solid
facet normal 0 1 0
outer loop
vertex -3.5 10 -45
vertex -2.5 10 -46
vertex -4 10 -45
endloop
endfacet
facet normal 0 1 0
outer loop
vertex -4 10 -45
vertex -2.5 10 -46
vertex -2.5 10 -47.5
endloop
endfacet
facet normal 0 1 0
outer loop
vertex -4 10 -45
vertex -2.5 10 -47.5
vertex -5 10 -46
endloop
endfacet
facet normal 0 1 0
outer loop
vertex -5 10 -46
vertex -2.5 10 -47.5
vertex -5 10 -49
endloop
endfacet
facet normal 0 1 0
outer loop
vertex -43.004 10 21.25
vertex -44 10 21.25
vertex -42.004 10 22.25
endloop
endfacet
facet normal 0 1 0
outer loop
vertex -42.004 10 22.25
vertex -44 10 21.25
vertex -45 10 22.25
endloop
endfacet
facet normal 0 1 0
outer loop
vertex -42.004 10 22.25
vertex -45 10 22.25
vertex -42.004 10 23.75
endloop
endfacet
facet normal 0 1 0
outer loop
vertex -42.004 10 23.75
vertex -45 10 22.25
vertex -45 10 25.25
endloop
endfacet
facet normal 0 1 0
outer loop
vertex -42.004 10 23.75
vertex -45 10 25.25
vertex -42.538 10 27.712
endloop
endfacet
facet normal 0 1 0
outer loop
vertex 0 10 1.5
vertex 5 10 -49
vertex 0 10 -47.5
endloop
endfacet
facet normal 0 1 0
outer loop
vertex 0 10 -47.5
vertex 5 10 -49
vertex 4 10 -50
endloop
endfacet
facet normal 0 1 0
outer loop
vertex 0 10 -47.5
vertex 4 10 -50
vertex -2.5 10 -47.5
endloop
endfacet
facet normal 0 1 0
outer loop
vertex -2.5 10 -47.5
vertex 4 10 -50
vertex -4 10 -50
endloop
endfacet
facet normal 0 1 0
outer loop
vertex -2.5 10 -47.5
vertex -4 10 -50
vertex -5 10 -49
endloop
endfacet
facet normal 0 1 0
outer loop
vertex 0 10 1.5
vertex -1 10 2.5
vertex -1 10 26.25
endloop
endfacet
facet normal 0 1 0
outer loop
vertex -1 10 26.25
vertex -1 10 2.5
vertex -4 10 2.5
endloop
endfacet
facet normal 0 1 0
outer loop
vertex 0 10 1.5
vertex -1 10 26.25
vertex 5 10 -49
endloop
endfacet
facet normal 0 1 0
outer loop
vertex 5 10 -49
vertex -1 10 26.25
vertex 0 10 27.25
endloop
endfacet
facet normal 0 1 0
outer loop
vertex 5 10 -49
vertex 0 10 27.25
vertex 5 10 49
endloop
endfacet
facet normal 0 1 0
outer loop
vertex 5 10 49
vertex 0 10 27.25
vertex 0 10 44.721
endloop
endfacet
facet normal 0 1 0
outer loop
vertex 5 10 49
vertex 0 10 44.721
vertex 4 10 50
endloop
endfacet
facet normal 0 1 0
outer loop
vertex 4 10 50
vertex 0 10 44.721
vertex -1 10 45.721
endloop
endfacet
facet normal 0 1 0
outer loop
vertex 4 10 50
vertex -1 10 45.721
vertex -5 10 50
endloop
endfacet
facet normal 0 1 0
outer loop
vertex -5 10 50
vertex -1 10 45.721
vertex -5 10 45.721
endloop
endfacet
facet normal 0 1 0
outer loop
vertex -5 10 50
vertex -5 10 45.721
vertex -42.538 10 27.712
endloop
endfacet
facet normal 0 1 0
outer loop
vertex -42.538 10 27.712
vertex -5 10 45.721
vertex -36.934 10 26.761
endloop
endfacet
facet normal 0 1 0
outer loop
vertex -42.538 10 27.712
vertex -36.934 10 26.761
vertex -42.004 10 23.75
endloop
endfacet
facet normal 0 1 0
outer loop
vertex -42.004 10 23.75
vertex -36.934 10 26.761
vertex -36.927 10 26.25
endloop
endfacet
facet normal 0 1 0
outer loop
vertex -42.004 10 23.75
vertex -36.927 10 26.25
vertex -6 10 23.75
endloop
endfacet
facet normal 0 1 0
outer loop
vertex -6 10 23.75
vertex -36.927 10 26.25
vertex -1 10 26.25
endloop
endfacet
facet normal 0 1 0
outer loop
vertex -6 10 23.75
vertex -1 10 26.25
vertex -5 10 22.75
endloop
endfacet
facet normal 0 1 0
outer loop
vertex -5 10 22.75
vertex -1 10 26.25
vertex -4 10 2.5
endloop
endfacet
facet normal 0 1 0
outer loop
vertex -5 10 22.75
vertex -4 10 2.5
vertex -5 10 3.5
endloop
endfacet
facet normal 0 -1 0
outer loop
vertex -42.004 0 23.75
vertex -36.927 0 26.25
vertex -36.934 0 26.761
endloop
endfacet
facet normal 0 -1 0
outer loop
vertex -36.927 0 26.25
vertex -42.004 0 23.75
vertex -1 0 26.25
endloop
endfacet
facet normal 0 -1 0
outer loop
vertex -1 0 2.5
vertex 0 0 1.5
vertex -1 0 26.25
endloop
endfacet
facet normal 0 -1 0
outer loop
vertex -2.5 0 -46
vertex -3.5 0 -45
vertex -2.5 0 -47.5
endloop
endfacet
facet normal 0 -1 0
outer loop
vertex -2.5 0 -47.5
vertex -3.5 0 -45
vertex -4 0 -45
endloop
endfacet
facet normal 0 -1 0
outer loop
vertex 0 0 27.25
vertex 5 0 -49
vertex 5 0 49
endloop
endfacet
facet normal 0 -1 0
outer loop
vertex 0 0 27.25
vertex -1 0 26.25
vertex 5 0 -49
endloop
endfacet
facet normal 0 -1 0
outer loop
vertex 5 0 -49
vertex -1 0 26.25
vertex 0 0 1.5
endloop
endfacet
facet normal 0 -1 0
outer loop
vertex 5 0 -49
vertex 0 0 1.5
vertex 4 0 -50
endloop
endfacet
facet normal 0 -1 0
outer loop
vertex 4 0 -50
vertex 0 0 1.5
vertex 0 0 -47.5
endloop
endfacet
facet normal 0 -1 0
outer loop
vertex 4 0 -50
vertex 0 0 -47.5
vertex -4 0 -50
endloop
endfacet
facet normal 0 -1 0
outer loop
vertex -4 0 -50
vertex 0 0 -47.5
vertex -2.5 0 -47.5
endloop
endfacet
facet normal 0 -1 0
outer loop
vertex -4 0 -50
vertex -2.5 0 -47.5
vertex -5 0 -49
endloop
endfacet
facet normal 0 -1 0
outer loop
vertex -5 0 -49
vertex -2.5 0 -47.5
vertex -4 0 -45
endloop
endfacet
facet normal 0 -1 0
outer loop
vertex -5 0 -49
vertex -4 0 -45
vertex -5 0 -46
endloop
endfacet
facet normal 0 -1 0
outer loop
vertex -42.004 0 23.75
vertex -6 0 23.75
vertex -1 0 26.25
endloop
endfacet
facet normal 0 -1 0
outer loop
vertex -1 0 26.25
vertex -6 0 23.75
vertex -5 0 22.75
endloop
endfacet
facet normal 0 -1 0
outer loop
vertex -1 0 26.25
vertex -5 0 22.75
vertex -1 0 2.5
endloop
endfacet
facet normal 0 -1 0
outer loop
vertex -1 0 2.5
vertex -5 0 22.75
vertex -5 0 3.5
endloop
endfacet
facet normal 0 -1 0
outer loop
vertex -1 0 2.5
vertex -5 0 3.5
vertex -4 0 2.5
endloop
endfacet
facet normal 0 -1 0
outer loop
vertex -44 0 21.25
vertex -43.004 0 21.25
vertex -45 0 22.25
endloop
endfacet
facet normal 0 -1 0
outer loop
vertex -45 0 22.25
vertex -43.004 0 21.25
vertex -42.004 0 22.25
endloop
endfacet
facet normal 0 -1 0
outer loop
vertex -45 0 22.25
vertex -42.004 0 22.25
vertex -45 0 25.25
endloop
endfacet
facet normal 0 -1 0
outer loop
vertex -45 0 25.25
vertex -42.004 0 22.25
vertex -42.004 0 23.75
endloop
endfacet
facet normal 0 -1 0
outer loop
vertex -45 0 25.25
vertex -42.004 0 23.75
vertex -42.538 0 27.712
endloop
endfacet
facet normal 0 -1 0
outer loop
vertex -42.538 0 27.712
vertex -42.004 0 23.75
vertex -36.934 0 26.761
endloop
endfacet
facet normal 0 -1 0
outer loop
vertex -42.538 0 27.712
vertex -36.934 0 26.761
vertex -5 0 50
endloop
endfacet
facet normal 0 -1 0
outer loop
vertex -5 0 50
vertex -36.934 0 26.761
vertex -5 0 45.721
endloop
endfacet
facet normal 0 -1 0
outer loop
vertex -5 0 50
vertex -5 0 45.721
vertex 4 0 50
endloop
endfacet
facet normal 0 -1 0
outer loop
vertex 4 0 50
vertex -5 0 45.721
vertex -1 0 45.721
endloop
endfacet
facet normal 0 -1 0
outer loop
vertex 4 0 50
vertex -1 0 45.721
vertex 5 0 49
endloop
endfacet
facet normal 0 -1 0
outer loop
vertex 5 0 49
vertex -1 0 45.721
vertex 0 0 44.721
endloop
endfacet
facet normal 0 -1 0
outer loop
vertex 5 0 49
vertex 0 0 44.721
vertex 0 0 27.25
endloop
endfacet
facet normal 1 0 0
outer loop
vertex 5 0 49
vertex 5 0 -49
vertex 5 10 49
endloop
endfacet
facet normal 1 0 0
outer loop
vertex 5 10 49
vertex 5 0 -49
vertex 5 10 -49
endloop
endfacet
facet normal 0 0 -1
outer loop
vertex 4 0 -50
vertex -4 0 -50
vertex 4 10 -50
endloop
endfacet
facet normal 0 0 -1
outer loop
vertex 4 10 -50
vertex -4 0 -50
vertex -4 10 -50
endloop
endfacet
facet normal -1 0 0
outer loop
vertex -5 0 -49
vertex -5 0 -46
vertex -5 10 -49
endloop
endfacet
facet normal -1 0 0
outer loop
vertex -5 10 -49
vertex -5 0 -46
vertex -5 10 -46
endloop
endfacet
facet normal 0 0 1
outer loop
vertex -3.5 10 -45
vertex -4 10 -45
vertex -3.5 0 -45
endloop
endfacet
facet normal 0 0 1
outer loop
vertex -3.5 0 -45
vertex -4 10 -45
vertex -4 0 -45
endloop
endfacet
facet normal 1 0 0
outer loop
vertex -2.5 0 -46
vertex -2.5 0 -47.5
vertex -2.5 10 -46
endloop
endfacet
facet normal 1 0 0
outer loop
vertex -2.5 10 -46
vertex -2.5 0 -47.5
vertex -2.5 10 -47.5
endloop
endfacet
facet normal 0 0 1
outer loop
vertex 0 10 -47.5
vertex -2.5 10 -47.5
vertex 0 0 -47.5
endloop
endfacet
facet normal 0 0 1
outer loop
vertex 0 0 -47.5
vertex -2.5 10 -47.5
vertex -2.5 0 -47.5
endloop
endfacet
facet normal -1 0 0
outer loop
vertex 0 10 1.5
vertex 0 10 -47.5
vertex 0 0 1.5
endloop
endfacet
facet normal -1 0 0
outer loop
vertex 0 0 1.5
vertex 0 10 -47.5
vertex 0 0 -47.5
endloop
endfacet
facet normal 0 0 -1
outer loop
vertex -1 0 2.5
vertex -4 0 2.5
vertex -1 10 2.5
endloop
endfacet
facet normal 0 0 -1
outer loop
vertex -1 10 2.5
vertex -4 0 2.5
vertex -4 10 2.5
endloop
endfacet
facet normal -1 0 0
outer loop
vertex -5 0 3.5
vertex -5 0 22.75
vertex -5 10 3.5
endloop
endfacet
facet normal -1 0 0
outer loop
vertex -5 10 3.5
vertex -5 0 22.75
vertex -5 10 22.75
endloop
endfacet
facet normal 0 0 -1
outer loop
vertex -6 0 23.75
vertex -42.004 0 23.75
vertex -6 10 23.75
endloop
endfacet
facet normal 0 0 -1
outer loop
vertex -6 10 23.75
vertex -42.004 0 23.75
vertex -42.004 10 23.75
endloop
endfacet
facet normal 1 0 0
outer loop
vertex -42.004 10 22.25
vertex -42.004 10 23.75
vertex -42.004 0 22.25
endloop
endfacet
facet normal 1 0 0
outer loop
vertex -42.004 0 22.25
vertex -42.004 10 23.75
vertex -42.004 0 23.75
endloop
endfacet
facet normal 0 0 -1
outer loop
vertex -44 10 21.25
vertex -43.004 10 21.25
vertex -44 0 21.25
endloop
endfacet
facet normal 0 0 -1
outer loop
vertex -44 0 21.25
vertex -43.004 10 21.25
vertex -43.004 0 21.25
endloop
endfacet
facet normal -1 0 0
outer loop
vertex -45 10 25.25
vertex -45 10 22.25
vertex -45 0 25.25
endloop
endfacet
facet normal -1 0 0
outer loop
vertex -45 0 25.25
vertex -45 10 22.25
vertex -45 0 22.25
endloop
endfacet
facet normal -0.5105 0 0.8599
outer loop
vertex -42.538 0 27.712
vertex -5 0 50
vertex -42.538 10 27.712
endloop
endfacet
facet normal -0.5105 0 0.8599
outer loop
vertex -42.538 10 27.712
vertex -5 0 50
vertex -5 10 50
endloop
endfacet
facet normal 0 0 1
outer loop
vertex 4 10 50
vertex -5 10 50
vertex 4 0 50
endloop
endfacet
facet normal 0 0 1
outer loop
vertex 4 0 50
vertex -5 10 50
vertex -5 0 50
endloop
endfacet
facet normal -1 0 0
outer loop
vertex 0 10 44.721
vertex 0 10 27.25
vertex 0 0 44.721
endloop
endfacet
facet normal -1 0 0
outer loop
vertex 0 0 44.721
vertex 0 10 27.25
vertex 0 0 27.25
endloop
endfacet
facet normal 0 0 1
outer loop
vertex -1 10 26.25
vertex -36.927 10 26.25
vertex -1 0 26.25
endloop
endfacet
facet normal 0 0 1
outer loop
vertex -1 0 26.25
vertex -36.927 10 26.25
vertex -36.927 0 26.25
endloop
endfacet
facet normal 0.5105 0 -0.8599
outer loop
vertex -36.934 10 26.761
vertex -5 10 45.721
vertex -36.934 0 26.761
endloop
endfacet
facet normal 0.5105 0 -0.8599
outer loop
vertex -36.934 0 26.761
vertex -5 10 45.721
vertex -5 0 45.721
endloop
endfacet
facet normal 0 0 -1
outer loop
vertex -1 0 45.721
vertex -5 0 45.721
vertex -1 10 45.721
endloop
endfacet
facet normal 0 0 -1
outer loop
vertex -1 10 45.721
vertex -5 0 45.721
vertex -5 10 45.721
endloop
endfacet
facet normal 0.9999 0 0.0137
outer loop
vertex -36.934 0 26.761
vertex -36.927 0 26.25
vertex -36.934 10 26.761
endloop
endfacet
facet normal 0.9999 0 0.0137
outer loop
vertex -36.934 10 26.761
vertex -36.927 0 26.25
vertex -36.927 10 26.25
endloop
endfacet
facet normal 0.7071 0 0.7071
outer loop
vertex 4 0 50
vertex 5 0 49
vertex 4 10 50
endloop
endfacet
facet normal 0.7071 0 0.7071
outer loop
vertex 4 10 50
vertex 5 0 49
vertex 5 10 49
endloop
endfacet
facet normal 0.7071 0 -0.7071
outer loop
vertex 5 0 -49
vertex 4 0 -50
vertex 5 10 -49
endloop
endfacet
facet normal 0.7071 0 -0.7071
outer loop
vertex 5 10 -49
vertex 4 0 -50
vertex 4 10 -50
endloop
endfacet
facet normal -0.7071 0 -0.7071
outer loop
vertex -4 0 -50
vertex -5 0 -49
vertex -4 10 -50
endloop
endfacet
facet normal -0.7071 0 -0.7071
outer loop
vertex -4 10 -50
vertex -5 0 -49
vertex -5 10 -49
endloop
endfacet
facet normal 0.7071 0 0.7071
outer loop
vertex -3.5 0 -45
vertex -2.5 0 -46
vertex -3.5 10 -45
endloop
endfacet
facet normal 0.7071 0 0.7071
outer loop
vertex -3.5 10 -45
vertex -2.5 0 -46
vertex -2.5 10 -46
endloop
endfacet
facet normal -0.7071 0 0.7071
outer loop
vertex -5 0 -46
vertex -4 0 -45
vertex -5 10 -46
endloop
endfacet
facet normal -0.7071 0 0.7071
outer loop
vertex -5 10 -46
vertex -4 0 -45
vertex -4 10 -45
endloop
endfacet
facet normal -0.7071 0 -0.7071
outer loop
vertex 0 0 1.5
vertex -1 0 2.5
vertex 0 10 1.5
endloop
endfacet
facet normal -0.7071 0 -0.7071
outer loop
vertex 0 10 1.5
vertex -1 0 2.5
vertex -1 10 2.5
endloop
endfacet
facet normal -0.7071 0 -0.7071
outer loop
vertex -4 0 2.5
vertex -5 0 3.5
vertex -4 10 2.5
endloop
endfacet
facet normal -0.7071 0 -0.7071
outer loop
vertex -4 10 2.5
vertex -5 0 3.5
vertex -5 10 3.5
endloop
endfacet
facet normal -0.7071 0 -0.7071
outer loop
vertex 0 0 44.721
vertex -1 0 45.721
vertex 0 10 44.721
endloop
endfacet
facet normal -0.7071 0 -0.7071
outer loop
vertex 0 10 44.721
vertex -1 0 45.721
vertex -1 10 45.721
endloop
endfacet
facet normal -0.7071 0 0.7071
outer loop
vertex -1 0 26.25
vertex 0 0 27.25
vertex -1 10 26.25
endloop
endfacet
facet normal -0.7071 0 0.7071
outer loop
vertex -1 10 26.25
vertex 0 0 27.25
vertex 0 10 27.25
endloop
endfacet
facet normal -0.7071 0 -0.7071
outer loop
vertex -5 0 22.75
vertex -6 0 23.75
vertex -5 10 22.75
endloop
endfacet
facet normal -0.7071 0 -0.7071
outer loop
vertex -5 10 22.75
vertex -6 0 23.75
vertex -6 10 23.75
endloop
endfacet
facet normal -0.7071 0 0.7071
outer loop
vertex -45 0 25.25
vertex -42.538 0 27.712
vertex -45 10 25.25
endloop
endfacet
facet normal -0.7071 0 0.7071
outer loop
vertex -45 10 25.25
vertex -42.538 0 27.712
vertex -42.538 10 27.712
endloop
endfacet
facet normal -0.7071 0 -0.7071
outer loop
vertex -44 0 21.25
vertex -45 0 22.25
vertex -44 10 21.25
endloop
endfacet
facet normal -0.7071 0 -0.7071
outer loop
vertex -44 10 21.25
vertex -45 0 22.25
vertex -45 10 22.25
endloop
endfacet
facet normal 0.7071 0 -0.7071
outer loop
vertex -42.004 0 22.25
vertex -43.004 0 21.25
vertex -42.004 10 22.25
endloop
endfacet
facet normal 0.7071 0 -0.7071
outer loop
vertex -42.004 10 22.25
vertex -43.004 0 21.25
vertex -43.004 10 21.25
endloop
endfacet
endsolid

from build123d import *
from OCP.BRepFilletAPI import BRepFilletAPI_MakeChamfer

# Parameters (mm, degrees)
BOSS_EXTRUDE1_DEPTH = 10
CHAMFER1_SIZE       = 1
CHAMFER1_SIZE2      = 0.866089989
CHAMFER2_SIZE       = 1
CHAMFER2_SIZE2      = 2.862737549


with BuildPart() as part:
    # Sketch1 → Boss-Extrude1 (new body)
    with BuildSketch(Plane(origin=(0, 0, 0), x_dir=(1, 0, 0), z_dir=(0, 1, 0))):
        Polygon((0, 0), (0, 45), (0, 47.5), (-2.5, 47.5), (-2.5, 45), (-5, 45), (-5, 50), (5, 50), (5, -50), (-5, -50), (-45, -26.25), (-45, -21.25), (-42.004108019, -21.25), (-42.004108019, -23.75), (-5, -23.75), (-5, -21.25), (-5, -2.5), (0, -2.5), align=None)
        Polygon((-37.793581703, -26.25), (-5, -45.721189136), (0, -45.721189136), (0, -26.25), align=None, mode=Mode.SUBTRACT)
    extrude(amount=BOSS_EXTRUDE1_DEPTH)

    # Chamfer1
    chamfer1_edges = [part.edges().sort_by_distance(p)[0] for p in [
        (-37.793581703, 5, 26.25),
    ]]
    chamfer1_side = [part.faces().sort_by_distance(p)[0] for p in [
        (-21.396790851, 5, 35.985594568),
    ]]
    chamfer(chamfer1_edges, length=CHAMFER1_SIZE, length2=CHAMFER1_SIZE2, reference=chamfer1_side[0])

    # Chamfer2: one chamfer whose edges measure the first distance from different faces: ONE call of the kernel's chamfer builder (chamfer() names one face for all edges)
    chamfer2_edges_1 = [part.edges().sort_by_distance(p)[0] for p in [
        (5, 5, 50),
        (-45, 5, 21.25),
        (-42.004108019, 5, 21.25),
        (-5, 5, 23.75),
        (-5, 5, 2.5),
        (0, 5, 2.5),
        (-2.5, 5, -45),
        (-5, 5, -45),
        (-5, 5, -50),
        (5, 5, -50),
        (0, 5, 45.721189136),
        (0, 5, 26.25),
    ]]
    chamfer2_edges_2 = [part.edges().sort_by_distance(p)[0] for p in [
        (-45, 5, 26.25),
    ]]
    chamfer2_side_2 = [part.faces().sort_by_distance(p)[0] for p in [
        (-45, 5, 23.75),
    ]]
    chamfer2 = BRepFilletAPI_MakeChamfer(part.part.solid().wrapped)
    for e in chamfer2_edges_1:
        chamfer2.Add(CHAMFER2_SIZE, e.wrapped)
    for e in chamfer2_edges_2:
        chamfer2.Add(CHAMFER2_SIZE, CHAMFER2_SIZE2, e.wrapped, chamfer2_side_2[0].wrapped)  # the first distance lies on this face
    add(Compound.cast(chamfer2.Shape()), mode=Mode.REPLACE)


solid = part.part
